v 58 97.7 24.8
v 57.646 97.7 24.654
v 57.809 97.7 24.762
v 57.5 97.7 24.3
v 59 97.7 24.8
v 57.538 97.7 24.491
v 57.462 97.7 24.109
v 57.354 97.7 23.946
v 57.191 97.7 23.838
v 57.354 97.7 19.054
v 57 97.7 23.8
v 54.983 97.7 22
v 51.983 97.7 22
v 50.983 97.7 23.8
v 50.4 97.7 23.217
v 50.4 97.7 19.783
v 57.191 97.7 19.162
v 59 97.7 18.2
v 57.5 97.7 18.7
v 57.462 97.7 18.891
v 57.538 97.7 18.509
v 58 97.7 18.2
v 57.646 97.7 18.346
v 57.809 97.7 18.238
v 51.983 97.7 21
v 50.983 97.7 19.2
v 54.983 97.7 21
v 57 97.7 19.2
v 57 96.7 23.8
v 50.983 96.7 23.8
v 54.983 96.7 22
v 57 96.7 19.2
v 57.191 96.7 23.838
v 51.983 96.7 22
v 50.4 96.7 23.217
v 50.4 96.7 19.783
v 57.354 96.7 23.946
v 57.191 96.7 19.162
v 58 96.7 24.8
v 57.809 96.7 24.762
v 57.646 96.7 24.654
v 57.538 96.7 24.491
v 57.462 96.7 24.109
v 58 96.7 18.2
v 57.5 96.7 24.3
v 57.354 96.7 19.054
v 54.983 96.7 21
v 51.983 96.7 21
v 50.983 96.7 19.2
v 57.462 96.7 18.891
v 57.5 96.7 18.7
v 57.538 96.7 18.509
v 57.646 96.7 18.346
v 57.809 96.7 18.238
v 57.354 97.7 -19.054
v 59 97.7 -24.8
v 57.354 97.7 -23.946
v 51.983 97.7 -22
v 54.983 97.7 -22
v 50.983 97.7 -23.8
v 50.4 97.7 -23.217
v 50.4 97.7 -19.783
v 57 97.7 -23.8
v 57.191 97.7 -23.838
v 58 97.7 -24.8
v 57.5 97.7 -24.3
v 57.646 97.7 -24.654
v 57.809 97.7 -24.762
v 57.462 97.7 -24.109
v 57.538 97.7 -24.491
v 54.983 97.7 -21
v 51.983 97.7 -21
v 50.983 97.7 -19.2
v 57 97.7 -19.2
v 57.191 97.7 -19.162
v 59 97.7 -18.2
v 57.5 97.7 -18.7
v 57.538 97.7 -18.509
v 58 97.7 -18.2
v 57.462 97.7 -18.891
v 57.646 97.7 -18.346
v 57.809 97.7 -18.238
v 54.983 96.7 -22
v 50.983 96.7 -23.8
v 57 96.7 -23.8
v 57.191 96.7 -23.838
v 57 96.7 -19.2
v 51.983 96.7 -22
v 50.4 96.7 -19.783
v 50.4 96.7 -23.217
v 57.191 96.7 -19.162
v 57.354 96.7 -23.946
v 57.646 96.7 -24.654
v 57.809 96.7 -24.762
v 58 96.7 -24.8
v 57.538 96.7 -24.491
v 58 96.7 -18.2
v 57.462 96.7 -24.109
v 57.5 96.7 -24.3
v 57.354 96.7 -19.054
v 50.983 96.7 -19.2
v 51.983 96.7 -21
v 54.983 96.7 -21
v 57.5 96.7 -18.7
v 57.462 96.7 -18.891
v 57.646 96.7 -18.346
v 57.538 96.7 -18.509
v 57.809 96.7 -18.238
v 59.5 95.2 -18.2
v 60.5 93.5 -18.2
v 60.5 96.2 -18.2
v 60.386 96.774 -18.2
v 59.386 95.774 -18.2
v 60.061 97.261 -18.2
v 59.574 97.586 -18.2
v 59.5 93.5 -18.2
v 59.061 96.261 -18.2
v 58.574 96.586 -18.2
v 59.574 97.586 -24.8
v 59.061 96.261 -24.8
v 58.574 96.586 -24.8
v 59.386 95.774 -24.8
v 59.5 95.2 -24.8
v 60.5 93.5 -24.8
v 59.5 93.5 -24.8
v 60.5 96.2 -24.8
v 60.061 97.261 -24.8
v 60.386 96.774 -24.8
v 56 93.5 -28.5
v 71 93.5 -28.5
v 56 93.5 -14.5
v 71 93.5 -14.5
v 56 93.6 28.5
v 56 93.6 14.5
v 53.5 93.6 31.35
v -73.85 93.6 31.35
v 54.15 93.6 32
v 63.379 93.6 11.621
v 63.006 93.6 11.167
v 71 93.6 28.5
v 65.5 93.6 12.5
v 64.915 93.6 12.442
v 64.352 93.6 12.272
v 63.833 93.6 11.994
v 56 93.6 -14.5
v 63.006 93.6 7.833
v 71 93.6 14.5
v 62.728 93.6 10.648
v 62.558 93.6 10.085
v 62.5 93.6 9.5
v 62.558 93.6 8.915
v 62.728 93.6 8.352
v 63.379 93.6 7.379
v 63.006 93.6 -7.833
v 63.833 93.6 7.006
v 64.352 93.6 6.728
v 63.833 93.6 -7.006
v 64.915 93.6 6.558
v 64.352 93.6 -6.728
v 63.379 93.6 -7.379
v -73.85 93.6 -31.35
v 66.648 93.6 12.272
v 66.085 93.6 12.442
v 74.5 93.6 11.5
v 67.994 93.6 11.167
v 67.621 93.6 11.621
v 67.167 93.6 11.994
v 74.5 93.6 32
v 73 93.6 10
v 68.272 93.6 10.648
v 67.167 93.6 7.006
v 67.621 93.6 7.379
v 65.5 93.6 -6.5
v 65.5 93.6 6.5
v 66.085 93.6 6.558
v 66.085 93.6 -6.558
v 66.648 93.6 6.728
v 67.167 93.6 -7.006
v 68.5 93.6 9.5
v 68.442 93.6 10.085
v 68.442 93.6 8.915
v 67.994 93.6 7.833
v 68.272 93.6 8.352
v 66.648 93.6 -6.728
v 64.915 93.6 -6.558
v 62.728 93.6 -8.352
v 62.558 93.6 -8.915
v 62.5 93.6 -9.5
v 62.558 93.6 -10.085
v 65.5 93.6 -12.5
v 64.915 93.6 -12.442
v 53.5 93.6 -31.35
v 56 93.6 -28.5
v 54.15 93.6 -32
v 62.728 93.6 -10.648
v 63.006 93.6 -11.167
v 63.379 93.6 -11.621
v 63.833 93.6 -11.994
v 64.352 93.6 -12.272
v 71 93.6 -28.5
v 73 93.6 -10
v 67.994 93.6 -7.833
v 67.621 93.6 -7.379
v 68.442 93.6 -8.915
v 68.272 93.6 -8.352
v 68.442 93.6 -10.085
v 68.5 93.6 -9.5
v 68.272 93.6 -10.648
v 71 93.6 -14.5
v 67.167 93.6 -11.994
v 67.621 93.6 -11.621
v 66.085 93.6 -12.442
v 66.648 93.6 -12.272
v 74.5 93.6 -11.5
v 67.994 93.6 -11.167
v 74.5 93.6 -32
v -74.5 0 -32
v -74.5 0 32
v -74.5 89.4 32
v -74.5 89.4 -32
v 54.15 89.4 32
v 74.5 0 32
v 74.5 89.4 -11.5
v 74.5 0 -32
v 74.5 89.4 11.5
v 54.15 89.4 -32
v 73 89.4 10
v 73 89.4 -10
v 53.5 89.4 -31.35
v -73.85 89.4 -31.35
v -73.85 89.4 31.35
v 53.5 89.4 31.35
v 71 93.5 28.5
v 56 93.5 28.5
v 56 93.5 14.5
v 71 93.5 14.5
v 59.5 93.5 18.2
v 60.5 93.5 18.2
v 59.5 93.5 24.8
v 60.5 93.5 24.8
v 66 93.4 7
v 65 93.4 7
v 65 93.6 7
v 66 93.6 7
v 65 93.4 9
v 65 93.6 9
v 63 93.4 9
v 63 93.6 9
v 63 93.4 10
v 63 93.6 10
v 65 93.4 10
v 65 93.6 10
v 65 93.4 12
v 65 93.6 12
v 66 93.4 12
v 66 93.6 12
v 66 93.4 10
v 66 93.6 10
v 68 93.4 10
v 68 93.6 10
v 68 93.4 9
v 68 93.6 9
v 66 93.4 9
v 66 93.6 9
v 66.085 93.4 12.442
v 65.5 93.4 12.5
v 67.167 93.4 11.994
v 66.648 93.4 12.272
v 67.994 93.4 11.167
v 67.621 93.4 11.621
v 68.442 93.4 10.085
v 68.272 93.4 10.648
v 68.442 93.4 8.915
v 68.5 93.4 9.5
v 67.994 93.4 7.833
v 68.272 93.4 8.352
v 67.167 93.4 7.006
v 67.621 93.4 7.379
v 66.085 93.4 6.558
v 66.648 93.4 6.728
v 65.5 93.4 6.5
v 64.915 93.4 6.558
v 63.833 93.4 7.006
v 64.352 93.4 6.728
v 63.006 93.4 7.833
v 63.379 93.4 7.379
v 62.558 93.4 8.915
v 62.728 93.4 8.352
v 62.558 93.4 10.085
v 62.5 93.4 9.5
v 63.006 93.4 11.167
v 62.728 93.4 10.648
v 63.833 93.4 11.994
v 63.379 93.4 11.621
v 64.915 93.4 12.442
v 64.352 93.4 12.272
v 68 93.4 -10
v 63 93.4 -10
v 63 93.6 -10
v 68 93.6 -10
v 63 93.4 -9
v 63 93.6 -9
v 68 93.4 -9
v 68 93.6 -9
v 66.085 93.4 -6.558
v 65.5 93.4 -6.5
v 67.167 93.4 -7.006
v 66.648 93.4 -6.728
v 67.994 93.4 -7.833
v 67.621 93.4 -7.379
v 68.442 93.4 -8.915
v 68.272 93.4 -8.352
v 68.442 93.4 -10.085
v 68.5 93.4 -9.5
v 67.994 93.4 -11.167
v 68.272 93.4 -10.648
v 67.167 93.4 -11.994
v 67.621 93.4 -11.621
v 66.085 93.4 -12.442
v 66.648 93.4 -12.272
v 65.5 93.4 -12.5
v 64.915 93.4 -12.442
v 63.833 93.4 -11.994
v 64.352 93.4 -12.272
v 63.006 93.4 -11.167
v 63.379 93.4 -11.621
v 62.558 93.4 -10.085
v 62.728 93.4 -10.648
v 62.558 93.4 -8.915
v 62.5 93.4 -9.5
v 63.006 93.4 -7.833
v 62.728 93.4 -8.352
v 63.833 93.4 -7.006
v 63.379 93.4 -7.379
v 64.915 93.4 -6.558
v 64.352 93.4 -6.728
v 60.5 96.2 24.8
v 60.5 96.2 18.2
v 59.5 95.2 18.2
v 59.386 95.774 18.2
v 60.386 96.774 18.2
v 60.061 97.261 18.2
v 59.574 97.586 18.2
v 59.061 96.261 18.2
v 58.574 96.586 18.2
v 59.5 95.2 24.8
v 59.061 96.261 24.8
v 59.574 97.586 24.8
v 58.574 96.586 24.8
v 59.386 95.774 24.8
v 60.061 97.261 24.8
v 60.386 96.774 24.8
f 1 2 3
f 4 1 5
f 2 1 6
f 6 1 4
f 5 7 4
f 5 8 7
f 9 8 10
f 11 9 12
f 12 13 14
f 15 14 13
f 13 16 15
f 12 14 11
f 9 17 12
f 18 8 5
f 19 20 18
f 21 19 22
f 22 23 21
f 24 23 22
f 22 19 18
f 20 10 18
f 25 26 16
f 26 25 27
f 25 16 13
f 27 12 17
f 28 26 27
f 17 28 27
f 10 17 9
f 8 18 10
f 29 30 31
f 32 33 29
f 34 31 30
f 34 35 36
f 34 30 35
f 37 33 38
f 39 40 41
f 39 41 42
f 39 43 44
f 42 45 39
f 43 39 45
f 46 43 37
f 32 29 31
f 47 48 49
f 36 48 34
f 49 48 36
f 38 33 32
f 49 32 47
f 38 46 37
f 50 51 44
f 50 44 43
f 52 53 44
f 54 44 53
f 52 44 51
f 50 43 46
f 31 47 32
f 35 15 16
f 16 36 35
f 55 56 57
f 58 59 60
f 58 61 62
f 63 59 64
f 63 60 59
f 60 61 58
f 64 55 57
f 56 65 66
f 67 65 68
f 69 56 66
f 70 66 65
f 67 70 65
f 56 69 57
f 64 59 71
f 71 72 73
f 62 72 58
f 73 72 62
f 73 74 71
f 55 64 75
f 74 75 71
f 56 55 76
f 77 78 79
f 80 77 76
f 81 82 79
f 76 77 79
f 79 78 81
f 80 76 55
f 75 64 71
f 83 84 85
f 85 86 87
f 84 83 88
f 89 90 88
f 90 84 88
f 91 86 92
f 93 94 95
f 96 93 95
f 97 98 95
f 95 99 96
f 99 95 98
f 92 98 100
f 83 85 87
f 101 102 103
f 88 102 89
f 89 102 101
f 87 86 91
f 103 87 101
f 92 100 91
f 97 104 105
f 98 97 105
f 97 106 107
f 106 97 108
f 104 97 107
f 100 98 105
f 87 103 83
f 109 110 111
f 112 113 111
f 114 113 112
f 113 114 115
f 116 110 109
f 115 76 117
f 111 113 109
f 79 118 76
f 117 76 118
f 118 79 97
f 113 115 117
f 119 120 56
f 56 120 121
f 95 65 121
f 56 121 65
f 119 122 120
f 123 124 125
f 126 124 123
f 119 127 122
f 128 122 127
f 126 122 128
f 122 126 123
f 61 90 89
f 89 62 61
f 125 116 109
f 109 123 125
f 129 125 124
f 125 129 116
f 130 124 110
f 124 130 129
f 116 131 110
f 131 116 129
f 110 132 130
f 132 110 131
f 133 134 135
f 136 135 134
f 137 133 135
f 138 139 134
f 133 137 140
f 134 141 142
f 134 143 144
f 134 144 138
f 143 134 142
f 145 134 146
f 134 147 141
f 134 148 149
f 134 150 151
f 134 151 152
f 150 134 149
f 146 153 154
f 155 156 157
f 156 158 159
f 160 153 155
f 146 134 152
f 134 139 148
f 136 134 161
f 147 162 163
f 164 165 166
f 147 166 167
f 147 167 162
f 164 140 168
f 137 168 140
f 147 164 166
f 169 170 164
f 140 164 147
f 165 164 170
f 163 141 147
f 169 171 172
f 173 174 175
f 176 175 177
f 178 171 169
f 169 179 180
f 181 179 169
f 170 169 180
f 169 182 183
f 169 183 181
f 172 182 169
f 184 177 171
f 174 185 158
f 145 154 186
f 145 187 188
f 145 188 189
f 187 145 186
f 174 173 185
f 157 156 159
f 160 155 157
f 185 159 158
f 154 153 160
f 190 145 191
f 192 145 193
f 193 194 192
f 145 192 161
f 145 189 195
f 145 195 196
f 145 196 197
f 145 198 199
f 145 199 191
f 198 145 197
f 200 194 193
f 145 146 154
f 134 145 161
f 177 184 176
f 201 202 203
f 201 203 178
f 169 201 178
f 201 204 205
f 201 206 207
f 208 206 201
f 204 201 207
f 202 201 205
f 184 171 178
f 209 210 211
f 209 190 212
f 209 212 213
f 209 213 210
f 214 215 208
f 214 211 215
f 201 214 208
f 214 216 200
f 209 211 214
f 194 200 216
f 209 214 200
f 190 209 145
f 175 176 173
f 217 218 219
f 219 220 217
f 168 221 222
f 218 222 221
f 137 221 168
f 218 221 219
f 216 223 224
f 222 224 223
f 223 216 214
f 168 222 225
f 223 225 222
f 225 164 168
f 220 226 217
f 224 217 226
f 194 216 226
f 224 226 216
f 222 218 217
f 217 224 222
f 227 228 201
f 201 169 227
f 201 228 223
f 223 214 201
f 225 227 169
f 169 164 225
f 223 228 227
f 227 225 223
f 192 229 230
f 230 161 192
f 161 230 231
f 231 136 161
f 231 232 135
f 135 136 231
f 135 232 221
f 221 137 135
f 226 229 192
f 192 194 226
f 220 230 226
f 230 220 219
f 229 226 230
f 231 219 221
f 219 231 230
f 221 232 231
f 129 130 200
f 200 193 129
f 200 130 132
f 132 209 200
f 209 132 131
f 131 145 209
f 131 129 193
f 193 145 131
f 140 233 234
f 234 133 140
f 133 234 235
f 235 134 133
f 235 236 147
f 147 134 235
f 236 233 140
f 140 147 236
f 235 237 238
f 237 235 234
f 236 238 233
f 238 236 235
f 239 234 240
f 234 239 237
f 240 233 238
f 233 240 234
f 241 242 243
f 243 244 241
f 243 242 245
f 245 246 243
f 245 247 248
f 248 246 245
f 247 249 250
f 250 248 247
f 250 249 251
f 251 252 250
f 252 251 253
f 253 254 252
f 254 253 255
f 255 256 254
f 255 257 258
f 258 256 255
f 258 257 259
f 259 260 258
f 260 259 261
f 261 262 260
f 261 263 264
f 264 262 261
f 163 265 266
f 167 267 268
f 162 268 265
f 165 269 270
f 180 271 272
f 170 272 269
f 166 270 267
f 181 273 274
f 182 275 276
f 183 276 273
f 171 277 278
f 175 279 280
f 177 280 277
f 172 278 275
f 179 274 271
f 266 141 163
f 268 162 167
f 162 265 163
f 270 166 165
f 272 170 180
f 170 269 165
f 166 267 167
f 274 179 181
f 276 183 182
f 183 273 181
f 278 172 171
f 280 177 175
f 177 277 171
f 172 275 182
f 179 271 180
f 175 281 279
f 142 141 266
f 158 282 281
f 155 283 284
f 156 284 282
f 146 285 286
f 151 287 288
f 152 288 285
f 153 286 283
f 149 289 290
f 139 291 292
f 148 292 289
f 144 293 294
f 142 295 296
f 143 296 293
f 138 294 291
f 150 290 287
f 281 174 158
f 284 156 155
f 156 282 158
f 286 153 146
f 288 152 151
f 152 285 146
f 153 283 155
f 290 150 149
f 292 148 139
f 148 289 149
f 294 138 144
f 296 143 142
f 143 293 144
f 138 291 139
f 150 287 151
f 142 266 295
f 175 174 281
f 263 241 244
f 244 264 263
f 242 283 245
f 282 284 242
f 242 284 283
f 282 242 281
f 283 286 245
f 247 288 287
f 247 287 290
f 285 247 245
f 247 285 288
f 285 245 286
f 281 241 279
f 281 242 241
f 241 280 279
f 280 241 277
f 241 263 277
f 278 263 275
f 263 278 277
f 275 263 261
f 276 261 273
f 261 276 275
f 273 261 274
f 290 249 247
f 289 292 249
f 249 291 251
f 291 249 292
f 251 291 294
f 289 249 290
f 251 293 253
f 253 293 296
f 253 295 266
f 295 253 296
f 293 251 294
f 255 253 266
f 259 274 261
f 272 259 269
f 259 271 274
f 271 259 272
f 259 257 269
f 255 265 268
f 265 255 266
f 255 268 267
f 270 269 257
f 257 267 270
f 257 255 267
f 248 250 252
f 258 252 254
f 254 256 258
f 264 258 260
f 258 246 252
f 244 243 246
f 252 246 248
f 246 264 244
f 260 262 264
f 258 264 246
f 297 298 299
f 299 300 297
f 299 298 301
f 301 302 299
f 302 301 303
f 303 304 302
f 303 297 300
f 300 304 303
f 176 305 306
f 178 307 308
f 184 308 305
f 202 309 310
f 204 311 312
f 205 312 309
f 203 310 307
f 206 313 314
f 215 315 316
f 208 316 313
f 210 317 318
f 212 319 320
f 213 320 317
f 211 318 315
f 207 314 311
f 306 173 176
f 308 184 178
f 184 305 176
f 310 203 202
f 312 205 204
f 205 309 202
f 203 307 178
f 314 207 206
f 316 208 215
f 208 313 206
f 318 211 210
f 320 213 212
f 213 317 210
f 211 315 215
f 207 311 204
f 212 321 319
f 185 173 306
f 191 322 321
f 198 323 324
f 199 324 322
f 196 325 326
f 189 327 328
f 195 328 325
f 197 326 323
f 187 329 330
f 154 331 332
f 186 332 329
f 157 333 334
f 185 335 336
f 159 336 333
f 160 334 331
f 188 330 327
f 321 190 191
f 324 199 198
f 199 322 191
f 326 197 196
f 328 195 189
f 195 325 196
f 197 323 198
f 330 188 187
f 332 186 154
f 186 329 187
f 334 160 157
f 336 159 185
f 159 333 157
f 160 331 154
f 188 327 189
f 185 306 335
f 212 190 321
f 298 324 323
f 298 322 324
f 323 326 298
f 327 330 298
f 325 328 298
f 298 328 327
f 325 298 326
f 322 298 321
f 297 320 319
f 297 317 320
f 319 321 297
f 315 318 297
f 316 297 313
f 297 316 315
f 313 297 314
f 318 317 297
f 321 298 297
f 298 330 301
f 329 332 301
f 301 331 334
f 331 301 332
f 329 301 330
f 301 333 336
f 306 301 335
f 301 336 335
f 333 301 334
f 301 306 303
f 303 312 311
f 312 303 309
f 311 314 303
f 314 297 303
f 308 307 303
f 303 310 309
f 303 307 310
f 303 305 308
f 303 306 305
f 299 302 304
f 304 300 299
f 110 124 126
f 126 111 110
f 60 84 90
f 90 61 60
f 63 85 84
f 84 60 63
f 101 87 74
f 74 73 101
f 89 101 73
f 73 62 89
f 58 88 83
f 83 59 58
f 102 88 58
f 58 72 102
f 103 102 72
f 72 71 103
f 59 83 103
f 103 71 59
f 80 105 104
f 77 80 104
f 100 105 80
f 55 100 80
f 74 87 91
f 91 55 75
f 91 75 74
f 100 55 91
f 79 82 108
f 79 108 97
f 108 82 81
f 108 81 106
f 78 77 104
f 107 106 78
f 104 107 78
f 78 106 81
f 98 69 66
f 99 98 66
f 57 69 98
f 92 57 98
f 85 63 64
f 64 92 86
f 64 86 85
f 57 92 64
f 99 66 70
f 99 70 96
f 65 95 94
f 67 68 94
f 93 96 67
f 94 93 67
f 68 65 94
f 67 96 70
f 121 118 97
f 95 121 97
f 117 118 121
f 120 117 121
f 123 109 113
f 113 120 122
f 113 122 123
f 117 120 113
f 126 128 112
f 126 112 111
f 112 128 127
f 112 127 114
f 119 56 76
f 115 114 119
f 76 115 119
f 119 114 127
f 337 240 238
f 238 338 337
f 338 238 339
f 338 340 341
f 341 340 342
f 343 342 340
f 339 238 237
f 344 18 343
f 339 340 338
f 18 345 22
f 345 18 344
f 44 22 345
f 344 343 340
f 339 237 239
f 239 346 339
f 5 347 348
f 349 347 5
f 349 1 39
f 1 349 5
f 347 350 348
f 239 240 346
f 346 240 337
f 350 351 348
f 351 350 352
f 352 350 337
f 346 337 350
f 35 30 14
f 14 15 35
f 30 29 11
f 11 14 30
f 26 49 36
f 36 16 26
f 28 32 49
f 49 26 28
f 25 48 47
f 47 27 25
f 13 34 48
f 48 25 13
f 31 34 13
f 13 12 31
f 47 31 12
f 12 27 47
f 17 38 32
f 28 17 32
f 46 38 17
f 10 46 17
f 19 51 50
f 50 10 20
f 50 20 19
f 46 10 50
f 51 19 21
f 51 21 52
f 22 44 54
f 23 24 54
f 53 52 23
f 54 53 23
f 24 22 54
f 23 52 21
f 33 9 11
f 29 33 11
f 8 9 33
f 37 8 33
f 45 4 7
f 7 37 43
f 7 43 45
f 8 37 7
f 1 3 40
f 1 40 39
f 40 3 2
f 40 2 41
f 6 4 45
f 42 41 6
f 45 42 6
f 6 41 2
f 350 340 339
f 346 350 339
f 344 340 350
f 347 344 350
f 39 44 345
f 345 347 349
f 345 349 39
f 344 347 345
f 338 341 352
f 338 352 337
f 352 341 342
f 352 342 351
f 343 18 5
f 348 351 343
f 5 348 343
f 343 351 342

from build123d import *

# Parameters (mm, degrees)
SKETCH1_W            = 149
SKETCH1_H            = 64
BOSS_EXTRUDE1_DEPTH  = 93.6
SKETCH2_W            = 1.5
SKETCH2_H            = 20
CUT_EXTRUDE1_DEPTH   = 4.2
SKETCH2_3_W          = 15
SKETCH2_3_H          = 14
CUT_EXTRUDE2_DEPTH   = 0.1
SKETCH2_4_R          = 3
SKETCH2_4_W          = 5
SKETCH2_4_H          = 1
CUT_EXTRUDE3_DEPTH   = 0.2
SKETCH3_W            = 1
SKETCH3_H            = 6.6
BOSS_EXTRUDE2_DEPTH  = 4.2
SKETCH4_W            = 6.6
SKETCH4_H            = 1
BOSS_EXTRUDE3_DEPTH  = 9.1
CUT_EXTRUDE4_REACH   = 128.963
SKETCH5_W            = 3
SKETCH5_H            = 1
FILLET1_START        = 93.5
FILLET1_DEPTH        = 5.5
FILLET1_START_2      = 96.7
FILLET1_2_DEPTH      = 1
FILLET2_R            = 1.5
FILLET2_OF_MIRROR1_R = 1.5


with BuildPart() as part:
    # Sketch1 → Boss-Extrude1 (new body)
    with BuildSketch(Plane(origin=(0, 0, 0), x_dir=(1, 0, 0), z_dir=(0, 1, 0))):
        Rectangle(SKETCH1_W, SKETCH1_H)
    extrude(amount=BOSS_EXTRUDE1_DEPTH)

    # Sketch2 → Cut-Extrude1 (cut)
    with BuildSketch(Plane(origin=(0, 93.6, 0), x_dir=(1, 0, 0), z_dir=(0, 1, 0))):
        with Locations((73.75, 0)):
            Rectangle(SKETCH2_W, SKETCH2_H)
        Polygon((74.5, 10), (74.5, 11.5), (73, 10), align=None)
        Polygon((73, -10), (74.5, -11.5), (74.5, -10), align=None)
        Polygon((54.15, -32), (53.5, -31.35), (-73.85, -31.35), (-73.85, 31.35), (53.5, 31.35), (54.15, 32), (-74.5, 32), (-74.5, -32), align=None)
    extrude(amount=-CUT_EXTRUDE1_DEPTH, mode=Mode.SUBTRACT)

    # Sketch2<3> → Cut-Extrude2 (cut)
    with BuildSketch(Plane(origin=(0, 93.6, 0), x_dir=(1, 0, 0), z_dir=(0, 1, 0))):
        with Locations((63.5, 21.5)):
            Rectangle(SKETCH2_3_W, SKETCH2_3_H)
        with Locations((63.5, -21.5)):
            Rectangle(SKETCH2_3_W, SKETCH2_3_H)
    extrude(amount=-CUT_EXTRUDE2_DEPTH, mode=Mode.SUBTRACT)

    # Sketch2<4> → Cut-Extrude3 (cut)
    # profile 1 of 2: a face of its own
    with BuildSketch(Plane(origin=(0, 93.6, 0), x_dir=(1, 0, 0), z_dir=(0, 1, 0))):
        with Locations(Location((65.5, 9.5, 0), (0, 0, 270))):
            Circle(SKETCH2_4_R)
        with Locations((65.5, 9.5)):
            Rectangle(SKETCH2_4_W, SKETCH2_4_H, mode=Mode.SUBTRACT)
    # profile 2 of 2: a face of its own
    with BuildSketch(Plane(origin=(0, 93.6, 0), x_dir=(1, 0, 0), z_dir=(0, 1, 0))):
        with Locations(Location((65.5, -9.5, 0), (0, 0, 270))):
            Circle(SKETCH2_4_R)
        Polygon((68, -9), (68, -10), (66, -10), (66, -12), (65, -12), (65, -10), (63, -10), (63, -9), (65, -9), (65, -7), (66, -7), (66, -9), align=None, mode=Mode.SUBTRACT)
    extrude(amount=-CUT_EXTRUDE3_DEPTH, mode=Mode.SUBTRACT)

    # Sketch3 → Boss-Extrude2 (add)
    with BuildSketch(Plane(origin=(0, 93.5, 0), x_dir=(1, 0, 0), z_dir=(0, 1, 0))):
        with Locations((60, 21.5)):
            Rectangle(SKETCH3_W, SKETCH3_H)
    boss_extrude2 = extrude(amount=BOSS_EXTRUDE2_DEPTH)

    # Sketch4 → Boss-Extrude3 (add)
    with BuildSketch(Plane.ZY.offset(-59.5)):
        with Locations((-21.5, 97.2)):
            Rectangle(SKETCH4_W, SKETCH4_H)
    boss_extrude3 = extrude(amount=BOSS_EXTRUDE3_DEPTH)

    # Sketch5 → Cut-Extrude4 (cut, up to next)
    with BuildSketch(Plane(origin=(0, 97.7, 0), x_dir=(1, 0, 0), z_dir=(0, 1, 0)), mode=Mode.PRIVATE) as cut_extrude4_sk1:
        Polygon((57.5, 23.8), (57.5, 24.8), (49.983191487, 24.8), (49.983191487, 22.8), (50.983191487, 23.8), align=None)
    cut_extrude4_tool1 = extrude(cut_extrude4_sk1.sketch, amount=-CUT_EXTRUDE4_REACH, mode=Mode.PRIVATE) & part.part
    # Sketch5 → Cut-Extrude4 (cut, up to next)
    with BuildSketch(Plane(origin=(0, 97.7, 0), x_dir=(1, 0, 0), z_dir=(0, 1, 0)), mode=Mode.PRIVATE) as cut_extrude4_sk2:
        Polygon((57.5, 18.2), (57.5, 19.2), (50.983191487, 19.2), (49.983191487, 20.2), (49.983191487, 18.2), align=None)
    cut_extrude4_tool2 = extrude(cut_extrude4_sk2.sketch, amount=-CUT_EXTRUDE4_REACH, mode=Mode.PRIVATE) & part.part
    # Sketch5 → Cut-Extrude4 (cut, up to next)
    with BuildSketch(Plane(origin=(0, 97.7, 0), x_dir=(1, 0, 0), z_dir=(0, 1, 0)), mode=Mode.PRIVATE) as cut_extrude4_sk3:
        with Locations((53.483191487, 21.5)):
            Rectangle(SKETCH5_W, SKETCH5_H)
    cut_extrude4_tool3 = extrude(cut_extrude4_sk3.sketch, amount=-CUT_EXTRUDE4_REACH, mode=Mode.PRIVATE) & part.part
    cut_extrude4_1 = cut_extrude4_tool1.solids().sort_by_distance((53.527978, 97.7, -24.248026))[0]
    add(cut_extrude4_1, mode=Mode.SUBTRACT)
    cut_extrude4_2 = cut_extrude4_tool2.solids().sort_by_distance((53.527978, 97.7, -18.751974))[0]
    add(cut_extrude4_2, mode=Mode.SUBTRACT)
    cut_extrude4_3 = cut_extrude4_tool3.solids().sort_by_distance((53.483191, 97.7, -21.5))[0]
    add(cut_extrude4_3, mode=Mode.SUBTRACT)
    cut_extrude4 = cut_extrude4_1 + cut_extrude4_2 + cut_extrude4_3  # Cut-Extrude4 as one shape, for the pattern or mirror that repeats it

    # Fillet1: read off the stored shape, not the designer's step
    # Fillet1 outline → Fillet1 (cut)
    with BuildSketch(Plane(origin=(0, 0, 0), x_dir=(1, 0, 0), z_dir=(0, 1, 0)).offset(FILLET1_START)):
        with BuildLine():
            ThreePointArc((58, 18.2), (57.646446609, 18.346446609), (57.5, 18.7))
            Line((57.5, 18.7), (57.5, 18.2))
            Line((57.5, 18.2), (58, 18.2))
        make_face()
        with BuildLine():
            Line((57.5, 24.8), (57.5, 24.3))
            ThreePointArc((57.5, 24.3), (57.646446609, 24.653553391), (58, 24.8))
            Line((58, 24.8), (57.5, 24.8))
        make_face()
    fillet1 = extrude(amount=FILLET1_DEPTH, mode=Mode.SUBTRACT)

    # Fillet1 2 outline → Fillet1 2 (add)
    with BuildSketch(Plane(origin=(0, 0, 0), x_dir=(1, 0, 0), z_dir=(0, 1, 0)).offset(FILLET1_START_2)):
        with BuildLine():
            ThreePointArc((57, 19.2), (57.353553391, 19.053553391), (57.5, 18.7))
            Line((57.5, 18.7), (57.5, 19.2))
            Line((57.5, 19.2), (57, 19.2))
        make_face()
        with BuildLine():
            Line((57.5, 23.8), (57.5, 24.3))
            ThreePointArc((57.5, 24.3), (57.353553391, 23.946446609), (57, 23.8))
            Line((57, 23.8), (57.5, 23.8))
        make_face()
    fillet1_2 = extrude(amount=FILLET1_2_DEPTH)

    # Fillet2
    fillet2_edges = [part.edges().sort_by_distance(p)[0] for p in [
        (59.5, 96.7, -21.5),
        (60.5, 97.7, -21.5),
    ]]
    fillet(fillet2_edges, radius=FILLET2_R)

    # Mirror1: Boss-Extrude2, Boss-Extrude3, Cut-Extrude4, Fillet1, Fillet1 2 across plane
    add(boss_extrude2.mirror(Plane.XY))
    add(boss_extrude3.mirror(Plane.XY))
    add(cut_extrude4.mirror(Plane.XY), mode=Mode.SUBTRACT)
    add(fillet1.mirror(Plane.XY), mode=Mode.SUBTRACT)
    add(fillet1_2.mirror(Plane.XY))

    # Fillet2 of Mirror1
    fillet2_of_mirror1_edges = [part.edges().sort_by_distance(p)[0] for p in [
        (59.5, 96.7, 21.5),
        (60.5, 97.7, 21.5),
    ]]
    fillet(fillet2_of_mirror1_edges, radius=FILLET2_OF_MIRROR1_R)


solid = part.part
